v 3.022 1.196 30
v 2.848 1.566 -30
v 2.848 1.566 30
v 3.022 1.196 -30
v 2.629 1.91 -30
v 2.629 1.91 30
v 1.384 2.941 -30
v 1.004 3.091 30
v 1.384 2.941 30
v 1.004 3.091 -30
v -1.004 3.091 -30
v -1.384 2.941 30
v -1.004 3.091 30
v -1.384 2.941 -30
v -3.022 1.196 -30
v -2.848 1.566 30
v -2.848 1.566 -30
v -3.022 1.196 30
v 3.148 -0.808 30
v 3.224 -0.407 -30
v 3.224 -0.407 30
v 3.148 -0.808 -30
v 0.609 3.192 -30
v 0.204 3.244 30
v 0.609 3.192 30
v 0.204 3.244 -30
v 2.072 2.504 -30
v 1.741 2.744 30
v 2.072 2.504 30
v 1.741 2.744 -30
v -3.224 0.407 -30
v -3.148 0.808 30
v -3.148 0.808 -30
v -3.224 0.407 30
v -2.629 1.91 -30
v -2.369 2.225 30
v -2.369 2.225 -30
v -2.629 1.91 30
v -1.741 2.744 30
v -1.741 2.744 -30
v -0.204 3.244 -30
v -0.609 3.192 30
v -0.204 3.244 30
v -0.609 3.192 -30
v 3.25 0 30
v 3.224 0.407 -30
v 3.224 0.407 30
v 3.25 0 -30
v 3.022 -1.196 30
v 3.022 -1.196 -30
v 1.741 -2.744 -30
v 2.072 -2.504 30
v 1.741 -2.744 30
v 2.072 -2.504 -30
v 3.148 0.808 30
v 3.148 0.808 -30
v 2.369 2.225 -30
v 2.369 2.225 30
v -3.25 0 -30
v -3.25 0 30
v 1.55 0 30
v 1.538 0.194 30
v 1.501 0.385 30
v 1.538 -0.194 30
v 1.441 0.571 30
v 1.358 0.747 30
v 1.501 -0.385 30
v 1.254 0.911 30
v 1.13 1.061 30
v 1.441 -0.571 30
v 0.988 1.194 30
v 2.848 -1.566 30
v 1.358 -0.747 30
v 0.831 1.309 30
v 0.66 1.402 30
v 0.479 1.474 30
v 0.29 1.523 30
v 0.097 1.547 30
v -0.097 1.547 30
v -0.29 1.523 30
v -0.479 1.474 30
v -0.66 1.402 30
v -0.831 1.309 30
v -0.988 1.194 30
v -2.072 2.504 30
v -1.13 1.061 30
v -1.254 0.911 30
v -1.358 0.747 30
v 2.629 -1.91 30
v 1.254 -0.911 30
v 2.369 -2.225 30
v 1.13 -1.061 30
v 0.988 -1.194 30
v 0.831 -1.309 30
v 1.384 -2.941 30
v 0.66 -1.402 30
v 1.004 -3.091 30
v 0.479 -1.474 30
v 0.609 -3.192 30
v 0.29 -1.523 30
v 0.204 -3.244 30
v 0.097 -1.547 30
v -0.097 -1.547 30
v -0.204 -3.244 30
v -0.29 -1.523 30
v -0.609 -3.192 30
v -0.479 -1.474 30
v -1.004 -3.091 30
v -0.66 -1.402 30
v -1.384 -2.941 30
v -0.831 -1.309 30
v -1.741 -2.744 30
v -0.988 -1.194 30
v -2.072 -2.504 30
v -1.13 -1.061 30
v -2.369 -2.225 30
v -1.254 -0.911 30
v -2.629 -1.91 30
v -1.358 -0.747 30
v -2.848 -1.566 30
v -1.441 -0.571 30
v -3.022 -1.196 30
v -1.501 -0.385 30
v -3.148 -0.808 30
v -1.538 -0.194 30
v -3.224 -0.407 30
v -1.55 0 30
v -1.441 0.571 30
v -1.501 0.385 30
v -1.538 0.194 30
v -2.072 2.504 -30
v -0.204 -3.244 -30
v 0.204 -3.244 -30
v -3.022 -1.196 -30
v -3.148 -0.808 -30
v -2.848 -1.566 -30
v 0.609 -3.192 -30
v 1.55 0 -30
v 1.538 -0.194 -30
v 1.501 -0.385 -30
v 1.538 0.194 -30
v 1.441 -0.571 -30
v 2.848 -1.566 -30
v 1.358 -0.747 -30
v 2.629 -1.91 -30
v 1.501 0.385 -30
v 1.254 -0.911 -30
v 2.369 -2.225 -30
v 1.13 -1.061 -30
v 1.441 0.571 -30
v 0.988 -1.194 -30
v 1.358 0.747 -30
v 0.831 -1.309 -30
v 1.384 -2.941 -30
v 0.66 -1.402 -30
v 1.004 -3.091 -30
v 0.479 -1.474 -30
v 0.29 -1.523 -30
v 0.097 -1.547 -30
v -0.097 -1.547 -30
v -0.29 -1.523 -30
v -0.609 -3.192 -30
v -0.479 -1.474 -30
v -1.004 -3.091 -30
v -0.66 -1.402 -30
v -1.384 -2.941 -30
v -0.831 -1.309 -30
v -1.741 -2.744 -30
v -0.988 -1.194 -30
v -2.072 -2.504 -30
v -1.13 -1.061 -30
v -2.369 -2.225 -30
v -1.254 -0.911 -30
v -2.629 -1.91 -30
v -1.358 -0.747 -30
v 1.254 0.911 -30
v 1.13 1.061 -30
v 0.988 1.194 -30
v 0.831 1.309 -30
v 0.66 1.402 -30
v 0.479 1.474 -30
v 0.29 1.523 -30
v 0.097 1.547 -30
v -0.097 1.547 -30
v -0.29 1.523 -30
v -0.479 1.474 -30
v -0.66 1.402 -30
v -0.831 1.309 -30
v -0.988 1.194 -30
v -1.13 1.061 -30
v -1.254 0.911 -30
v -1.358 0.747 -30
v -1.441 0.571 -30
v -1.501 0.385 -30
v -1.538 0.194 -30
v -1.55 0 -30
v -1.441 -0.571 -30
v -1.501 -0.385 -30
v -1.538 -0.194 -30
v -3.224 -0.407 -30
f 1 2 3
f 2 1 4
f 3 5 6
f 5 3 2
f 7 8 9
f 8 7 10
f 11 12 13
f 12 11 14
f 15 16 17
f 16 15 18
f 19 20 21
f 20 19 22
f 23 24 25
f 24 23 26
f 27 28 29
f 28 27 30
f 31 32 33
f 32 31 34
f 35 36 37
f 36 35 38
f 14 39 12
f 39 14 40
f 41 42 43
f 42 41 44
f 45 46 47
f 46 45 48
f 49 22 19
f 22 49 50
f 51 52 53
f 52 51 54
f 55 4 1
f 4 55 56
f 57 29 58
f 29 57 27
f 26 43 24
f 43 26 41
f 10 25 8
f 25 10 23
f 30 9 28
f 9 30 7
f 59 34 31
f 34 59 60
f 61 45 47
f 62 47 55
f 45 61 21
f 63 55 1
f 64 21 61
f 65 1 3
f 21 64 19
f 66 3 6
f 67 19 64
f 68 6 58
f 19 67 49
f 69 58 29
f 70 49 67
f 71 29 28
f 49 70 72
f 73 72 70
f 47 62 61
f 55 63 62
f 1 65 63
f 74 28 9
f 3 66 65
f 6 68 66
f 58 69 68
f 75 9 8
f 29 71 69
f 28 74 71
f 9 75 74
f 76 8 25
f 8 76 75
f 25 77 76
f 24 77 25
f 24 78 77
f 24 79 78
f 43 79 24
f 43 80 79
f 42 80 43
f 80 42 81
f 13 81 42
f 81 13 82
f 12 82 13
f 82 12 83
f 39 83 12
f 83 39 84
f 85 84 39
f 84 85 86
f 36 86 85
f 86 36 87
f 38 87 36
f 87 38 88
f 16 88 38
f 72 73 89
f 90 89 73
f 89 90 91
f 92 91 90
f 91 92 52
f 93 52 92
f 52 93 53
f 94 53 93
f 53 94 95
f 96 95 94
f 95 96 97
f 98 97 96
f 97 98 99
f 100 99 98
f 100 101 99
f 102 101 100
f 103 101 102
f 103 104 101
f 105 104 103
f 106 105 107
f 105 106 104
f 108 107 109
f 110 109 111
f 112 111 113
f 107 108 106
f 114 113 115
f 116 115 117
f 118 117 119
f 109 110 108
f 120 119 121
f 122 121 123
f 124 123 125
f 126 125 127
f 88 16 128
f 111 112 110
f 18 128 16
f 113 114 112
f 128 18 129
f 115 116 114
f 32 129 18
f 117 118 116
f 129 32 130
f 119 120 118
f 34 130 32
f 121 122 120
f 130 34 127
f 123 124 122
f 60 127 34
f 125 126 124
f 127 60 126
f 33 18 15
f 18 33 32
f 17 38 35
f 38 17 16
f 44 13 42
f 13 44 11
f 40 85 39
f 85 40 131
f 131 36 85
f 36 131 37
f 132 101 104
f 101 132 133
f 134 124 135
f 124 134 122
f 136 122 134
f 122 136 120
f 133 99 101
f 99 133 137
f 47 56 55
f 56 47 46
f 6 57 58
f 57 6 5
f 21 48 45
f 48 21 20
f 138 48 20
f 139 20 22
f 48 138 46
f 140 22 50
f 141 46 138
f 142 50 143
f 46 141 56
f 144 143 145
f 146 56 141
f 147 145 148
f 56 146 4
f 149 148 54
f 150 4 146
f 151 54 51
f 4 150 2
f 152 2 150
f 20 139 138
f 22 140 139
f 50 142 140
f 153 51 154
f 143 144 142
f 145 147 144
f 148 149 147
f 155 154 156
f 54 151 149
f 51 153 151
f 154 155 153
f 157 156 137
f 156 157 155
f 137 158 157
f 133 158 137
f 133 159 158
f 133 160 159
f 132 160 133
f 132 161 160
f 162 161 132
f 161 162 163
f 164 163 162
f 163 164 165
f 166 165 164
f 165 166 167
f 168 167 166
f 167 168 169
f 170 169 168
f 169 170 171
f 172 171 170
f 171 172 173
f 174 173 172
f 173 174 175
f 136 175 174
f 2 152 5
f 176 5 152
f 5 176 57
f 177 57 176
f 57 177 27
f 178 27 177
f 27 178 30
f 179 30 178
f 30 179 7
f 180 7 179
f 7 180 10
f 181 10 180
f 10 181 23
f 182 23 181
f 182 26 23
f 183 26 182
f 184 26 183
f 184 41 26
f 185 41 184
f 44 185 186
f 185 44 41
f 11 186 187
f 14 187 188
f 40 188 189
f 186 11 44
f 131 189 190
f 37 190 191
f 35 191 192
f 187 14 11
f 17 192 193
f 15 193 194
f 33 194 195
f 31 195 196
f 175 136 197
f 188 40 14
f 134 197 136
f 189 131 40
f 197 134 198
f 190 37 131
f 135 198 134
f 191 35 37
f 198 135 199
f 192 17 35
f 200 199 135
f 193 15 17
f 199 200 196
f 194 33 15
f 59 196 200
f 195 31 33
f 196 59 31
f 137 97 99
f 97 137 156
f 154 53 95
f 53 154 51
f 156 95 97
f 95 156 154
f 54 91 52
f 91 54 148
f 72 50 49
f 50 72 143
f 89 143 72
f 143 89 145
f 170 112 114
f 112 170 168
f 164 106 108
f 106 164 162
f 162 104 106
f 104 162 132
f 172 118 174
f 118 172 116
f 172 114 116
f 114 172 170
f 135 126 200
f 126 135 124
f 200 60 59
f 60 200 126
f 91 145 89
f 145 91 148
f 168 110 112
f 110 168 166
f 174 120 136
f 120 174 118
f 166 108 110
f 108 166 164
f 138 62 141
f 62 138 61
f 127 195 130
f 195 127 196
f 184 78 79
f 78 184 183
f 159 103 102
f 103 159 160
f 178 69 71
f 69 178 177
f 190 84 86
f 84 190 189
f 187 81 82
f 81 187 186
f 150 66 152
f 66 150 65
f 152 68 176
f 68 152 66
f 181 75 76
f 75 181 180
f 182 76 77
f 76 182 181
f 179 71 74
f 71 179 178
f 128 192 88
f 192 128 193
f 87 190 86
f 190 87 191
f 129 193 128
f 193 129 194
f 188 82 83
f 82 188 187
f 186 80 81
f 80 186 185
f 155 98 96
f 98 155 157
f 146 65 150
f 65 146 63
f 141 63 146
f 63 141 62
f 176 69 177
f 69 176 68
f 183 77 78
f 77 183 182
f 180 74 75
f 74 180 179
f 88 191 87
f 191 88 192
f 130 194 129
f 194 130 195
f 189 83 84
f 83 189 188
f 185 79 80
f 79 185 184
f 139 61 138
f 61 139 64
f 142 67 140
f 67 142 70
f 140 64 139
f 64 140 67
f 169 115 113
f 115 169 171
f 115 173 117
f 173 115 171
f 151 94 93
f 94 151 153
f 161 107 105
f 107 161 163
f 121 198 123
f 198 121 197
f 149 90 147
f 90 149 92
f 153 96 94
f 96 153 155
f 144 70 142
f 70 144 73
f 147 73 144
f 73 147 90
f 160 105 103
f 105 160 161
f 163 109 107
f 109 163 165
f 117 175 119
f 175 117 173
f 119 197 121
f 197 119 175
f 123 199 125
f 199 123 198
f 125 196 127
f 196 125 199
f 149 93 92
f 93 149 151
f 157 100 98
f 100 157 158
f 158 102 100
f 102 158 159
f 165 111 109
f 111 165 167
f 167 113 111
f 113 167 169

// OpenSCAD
$fn = 50;


difference() {
	union() {
		translate(v = [0, 0, -30.0000000000]) {
			cylinder(h = 60, r = 3.2500000000);
		}
	}
	union() {
		translate(v = [0, 0, -100.0000000000]) {
			cylinder(h = 200, r = 1.5500000000);
		}
	}
}
